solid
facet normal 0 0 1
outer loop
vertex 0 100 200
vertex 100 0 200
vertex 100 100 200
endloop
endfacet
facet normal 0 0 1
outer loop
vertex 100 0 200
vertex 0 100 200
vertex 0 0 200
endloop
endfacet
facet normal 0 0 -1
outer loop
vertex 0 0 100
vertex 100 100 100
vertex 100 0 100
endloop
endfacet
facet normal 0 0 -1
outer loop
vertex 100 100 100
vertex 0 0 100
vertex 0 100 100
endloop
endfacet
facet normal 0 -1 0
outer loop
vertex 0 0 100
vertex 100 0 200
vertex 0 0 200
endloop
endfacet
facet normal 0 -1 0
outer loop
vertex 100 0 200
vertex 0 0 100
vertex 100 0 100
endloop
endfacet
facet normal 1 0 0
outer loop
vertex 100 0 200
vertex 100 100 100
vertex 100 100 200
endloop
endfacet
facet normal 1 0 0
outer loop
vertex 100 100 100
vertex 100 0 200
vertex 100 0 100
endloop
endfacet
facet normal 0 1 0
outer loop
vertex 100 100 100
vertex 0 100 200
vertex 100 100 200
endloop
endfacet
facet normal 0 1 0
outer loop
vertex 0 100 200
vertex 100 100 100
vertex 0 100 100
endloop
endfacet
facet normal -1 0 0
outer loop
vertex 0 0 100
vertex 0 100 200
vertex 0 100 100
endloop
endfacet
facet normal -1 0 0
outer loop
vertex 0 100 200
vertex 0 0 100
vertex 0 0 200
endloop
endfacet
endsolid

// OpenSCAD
// Simple OpenSCAD test file
// Creates a basic cube

translate([0, 0, 100])
cube([100, 100, 100]);
